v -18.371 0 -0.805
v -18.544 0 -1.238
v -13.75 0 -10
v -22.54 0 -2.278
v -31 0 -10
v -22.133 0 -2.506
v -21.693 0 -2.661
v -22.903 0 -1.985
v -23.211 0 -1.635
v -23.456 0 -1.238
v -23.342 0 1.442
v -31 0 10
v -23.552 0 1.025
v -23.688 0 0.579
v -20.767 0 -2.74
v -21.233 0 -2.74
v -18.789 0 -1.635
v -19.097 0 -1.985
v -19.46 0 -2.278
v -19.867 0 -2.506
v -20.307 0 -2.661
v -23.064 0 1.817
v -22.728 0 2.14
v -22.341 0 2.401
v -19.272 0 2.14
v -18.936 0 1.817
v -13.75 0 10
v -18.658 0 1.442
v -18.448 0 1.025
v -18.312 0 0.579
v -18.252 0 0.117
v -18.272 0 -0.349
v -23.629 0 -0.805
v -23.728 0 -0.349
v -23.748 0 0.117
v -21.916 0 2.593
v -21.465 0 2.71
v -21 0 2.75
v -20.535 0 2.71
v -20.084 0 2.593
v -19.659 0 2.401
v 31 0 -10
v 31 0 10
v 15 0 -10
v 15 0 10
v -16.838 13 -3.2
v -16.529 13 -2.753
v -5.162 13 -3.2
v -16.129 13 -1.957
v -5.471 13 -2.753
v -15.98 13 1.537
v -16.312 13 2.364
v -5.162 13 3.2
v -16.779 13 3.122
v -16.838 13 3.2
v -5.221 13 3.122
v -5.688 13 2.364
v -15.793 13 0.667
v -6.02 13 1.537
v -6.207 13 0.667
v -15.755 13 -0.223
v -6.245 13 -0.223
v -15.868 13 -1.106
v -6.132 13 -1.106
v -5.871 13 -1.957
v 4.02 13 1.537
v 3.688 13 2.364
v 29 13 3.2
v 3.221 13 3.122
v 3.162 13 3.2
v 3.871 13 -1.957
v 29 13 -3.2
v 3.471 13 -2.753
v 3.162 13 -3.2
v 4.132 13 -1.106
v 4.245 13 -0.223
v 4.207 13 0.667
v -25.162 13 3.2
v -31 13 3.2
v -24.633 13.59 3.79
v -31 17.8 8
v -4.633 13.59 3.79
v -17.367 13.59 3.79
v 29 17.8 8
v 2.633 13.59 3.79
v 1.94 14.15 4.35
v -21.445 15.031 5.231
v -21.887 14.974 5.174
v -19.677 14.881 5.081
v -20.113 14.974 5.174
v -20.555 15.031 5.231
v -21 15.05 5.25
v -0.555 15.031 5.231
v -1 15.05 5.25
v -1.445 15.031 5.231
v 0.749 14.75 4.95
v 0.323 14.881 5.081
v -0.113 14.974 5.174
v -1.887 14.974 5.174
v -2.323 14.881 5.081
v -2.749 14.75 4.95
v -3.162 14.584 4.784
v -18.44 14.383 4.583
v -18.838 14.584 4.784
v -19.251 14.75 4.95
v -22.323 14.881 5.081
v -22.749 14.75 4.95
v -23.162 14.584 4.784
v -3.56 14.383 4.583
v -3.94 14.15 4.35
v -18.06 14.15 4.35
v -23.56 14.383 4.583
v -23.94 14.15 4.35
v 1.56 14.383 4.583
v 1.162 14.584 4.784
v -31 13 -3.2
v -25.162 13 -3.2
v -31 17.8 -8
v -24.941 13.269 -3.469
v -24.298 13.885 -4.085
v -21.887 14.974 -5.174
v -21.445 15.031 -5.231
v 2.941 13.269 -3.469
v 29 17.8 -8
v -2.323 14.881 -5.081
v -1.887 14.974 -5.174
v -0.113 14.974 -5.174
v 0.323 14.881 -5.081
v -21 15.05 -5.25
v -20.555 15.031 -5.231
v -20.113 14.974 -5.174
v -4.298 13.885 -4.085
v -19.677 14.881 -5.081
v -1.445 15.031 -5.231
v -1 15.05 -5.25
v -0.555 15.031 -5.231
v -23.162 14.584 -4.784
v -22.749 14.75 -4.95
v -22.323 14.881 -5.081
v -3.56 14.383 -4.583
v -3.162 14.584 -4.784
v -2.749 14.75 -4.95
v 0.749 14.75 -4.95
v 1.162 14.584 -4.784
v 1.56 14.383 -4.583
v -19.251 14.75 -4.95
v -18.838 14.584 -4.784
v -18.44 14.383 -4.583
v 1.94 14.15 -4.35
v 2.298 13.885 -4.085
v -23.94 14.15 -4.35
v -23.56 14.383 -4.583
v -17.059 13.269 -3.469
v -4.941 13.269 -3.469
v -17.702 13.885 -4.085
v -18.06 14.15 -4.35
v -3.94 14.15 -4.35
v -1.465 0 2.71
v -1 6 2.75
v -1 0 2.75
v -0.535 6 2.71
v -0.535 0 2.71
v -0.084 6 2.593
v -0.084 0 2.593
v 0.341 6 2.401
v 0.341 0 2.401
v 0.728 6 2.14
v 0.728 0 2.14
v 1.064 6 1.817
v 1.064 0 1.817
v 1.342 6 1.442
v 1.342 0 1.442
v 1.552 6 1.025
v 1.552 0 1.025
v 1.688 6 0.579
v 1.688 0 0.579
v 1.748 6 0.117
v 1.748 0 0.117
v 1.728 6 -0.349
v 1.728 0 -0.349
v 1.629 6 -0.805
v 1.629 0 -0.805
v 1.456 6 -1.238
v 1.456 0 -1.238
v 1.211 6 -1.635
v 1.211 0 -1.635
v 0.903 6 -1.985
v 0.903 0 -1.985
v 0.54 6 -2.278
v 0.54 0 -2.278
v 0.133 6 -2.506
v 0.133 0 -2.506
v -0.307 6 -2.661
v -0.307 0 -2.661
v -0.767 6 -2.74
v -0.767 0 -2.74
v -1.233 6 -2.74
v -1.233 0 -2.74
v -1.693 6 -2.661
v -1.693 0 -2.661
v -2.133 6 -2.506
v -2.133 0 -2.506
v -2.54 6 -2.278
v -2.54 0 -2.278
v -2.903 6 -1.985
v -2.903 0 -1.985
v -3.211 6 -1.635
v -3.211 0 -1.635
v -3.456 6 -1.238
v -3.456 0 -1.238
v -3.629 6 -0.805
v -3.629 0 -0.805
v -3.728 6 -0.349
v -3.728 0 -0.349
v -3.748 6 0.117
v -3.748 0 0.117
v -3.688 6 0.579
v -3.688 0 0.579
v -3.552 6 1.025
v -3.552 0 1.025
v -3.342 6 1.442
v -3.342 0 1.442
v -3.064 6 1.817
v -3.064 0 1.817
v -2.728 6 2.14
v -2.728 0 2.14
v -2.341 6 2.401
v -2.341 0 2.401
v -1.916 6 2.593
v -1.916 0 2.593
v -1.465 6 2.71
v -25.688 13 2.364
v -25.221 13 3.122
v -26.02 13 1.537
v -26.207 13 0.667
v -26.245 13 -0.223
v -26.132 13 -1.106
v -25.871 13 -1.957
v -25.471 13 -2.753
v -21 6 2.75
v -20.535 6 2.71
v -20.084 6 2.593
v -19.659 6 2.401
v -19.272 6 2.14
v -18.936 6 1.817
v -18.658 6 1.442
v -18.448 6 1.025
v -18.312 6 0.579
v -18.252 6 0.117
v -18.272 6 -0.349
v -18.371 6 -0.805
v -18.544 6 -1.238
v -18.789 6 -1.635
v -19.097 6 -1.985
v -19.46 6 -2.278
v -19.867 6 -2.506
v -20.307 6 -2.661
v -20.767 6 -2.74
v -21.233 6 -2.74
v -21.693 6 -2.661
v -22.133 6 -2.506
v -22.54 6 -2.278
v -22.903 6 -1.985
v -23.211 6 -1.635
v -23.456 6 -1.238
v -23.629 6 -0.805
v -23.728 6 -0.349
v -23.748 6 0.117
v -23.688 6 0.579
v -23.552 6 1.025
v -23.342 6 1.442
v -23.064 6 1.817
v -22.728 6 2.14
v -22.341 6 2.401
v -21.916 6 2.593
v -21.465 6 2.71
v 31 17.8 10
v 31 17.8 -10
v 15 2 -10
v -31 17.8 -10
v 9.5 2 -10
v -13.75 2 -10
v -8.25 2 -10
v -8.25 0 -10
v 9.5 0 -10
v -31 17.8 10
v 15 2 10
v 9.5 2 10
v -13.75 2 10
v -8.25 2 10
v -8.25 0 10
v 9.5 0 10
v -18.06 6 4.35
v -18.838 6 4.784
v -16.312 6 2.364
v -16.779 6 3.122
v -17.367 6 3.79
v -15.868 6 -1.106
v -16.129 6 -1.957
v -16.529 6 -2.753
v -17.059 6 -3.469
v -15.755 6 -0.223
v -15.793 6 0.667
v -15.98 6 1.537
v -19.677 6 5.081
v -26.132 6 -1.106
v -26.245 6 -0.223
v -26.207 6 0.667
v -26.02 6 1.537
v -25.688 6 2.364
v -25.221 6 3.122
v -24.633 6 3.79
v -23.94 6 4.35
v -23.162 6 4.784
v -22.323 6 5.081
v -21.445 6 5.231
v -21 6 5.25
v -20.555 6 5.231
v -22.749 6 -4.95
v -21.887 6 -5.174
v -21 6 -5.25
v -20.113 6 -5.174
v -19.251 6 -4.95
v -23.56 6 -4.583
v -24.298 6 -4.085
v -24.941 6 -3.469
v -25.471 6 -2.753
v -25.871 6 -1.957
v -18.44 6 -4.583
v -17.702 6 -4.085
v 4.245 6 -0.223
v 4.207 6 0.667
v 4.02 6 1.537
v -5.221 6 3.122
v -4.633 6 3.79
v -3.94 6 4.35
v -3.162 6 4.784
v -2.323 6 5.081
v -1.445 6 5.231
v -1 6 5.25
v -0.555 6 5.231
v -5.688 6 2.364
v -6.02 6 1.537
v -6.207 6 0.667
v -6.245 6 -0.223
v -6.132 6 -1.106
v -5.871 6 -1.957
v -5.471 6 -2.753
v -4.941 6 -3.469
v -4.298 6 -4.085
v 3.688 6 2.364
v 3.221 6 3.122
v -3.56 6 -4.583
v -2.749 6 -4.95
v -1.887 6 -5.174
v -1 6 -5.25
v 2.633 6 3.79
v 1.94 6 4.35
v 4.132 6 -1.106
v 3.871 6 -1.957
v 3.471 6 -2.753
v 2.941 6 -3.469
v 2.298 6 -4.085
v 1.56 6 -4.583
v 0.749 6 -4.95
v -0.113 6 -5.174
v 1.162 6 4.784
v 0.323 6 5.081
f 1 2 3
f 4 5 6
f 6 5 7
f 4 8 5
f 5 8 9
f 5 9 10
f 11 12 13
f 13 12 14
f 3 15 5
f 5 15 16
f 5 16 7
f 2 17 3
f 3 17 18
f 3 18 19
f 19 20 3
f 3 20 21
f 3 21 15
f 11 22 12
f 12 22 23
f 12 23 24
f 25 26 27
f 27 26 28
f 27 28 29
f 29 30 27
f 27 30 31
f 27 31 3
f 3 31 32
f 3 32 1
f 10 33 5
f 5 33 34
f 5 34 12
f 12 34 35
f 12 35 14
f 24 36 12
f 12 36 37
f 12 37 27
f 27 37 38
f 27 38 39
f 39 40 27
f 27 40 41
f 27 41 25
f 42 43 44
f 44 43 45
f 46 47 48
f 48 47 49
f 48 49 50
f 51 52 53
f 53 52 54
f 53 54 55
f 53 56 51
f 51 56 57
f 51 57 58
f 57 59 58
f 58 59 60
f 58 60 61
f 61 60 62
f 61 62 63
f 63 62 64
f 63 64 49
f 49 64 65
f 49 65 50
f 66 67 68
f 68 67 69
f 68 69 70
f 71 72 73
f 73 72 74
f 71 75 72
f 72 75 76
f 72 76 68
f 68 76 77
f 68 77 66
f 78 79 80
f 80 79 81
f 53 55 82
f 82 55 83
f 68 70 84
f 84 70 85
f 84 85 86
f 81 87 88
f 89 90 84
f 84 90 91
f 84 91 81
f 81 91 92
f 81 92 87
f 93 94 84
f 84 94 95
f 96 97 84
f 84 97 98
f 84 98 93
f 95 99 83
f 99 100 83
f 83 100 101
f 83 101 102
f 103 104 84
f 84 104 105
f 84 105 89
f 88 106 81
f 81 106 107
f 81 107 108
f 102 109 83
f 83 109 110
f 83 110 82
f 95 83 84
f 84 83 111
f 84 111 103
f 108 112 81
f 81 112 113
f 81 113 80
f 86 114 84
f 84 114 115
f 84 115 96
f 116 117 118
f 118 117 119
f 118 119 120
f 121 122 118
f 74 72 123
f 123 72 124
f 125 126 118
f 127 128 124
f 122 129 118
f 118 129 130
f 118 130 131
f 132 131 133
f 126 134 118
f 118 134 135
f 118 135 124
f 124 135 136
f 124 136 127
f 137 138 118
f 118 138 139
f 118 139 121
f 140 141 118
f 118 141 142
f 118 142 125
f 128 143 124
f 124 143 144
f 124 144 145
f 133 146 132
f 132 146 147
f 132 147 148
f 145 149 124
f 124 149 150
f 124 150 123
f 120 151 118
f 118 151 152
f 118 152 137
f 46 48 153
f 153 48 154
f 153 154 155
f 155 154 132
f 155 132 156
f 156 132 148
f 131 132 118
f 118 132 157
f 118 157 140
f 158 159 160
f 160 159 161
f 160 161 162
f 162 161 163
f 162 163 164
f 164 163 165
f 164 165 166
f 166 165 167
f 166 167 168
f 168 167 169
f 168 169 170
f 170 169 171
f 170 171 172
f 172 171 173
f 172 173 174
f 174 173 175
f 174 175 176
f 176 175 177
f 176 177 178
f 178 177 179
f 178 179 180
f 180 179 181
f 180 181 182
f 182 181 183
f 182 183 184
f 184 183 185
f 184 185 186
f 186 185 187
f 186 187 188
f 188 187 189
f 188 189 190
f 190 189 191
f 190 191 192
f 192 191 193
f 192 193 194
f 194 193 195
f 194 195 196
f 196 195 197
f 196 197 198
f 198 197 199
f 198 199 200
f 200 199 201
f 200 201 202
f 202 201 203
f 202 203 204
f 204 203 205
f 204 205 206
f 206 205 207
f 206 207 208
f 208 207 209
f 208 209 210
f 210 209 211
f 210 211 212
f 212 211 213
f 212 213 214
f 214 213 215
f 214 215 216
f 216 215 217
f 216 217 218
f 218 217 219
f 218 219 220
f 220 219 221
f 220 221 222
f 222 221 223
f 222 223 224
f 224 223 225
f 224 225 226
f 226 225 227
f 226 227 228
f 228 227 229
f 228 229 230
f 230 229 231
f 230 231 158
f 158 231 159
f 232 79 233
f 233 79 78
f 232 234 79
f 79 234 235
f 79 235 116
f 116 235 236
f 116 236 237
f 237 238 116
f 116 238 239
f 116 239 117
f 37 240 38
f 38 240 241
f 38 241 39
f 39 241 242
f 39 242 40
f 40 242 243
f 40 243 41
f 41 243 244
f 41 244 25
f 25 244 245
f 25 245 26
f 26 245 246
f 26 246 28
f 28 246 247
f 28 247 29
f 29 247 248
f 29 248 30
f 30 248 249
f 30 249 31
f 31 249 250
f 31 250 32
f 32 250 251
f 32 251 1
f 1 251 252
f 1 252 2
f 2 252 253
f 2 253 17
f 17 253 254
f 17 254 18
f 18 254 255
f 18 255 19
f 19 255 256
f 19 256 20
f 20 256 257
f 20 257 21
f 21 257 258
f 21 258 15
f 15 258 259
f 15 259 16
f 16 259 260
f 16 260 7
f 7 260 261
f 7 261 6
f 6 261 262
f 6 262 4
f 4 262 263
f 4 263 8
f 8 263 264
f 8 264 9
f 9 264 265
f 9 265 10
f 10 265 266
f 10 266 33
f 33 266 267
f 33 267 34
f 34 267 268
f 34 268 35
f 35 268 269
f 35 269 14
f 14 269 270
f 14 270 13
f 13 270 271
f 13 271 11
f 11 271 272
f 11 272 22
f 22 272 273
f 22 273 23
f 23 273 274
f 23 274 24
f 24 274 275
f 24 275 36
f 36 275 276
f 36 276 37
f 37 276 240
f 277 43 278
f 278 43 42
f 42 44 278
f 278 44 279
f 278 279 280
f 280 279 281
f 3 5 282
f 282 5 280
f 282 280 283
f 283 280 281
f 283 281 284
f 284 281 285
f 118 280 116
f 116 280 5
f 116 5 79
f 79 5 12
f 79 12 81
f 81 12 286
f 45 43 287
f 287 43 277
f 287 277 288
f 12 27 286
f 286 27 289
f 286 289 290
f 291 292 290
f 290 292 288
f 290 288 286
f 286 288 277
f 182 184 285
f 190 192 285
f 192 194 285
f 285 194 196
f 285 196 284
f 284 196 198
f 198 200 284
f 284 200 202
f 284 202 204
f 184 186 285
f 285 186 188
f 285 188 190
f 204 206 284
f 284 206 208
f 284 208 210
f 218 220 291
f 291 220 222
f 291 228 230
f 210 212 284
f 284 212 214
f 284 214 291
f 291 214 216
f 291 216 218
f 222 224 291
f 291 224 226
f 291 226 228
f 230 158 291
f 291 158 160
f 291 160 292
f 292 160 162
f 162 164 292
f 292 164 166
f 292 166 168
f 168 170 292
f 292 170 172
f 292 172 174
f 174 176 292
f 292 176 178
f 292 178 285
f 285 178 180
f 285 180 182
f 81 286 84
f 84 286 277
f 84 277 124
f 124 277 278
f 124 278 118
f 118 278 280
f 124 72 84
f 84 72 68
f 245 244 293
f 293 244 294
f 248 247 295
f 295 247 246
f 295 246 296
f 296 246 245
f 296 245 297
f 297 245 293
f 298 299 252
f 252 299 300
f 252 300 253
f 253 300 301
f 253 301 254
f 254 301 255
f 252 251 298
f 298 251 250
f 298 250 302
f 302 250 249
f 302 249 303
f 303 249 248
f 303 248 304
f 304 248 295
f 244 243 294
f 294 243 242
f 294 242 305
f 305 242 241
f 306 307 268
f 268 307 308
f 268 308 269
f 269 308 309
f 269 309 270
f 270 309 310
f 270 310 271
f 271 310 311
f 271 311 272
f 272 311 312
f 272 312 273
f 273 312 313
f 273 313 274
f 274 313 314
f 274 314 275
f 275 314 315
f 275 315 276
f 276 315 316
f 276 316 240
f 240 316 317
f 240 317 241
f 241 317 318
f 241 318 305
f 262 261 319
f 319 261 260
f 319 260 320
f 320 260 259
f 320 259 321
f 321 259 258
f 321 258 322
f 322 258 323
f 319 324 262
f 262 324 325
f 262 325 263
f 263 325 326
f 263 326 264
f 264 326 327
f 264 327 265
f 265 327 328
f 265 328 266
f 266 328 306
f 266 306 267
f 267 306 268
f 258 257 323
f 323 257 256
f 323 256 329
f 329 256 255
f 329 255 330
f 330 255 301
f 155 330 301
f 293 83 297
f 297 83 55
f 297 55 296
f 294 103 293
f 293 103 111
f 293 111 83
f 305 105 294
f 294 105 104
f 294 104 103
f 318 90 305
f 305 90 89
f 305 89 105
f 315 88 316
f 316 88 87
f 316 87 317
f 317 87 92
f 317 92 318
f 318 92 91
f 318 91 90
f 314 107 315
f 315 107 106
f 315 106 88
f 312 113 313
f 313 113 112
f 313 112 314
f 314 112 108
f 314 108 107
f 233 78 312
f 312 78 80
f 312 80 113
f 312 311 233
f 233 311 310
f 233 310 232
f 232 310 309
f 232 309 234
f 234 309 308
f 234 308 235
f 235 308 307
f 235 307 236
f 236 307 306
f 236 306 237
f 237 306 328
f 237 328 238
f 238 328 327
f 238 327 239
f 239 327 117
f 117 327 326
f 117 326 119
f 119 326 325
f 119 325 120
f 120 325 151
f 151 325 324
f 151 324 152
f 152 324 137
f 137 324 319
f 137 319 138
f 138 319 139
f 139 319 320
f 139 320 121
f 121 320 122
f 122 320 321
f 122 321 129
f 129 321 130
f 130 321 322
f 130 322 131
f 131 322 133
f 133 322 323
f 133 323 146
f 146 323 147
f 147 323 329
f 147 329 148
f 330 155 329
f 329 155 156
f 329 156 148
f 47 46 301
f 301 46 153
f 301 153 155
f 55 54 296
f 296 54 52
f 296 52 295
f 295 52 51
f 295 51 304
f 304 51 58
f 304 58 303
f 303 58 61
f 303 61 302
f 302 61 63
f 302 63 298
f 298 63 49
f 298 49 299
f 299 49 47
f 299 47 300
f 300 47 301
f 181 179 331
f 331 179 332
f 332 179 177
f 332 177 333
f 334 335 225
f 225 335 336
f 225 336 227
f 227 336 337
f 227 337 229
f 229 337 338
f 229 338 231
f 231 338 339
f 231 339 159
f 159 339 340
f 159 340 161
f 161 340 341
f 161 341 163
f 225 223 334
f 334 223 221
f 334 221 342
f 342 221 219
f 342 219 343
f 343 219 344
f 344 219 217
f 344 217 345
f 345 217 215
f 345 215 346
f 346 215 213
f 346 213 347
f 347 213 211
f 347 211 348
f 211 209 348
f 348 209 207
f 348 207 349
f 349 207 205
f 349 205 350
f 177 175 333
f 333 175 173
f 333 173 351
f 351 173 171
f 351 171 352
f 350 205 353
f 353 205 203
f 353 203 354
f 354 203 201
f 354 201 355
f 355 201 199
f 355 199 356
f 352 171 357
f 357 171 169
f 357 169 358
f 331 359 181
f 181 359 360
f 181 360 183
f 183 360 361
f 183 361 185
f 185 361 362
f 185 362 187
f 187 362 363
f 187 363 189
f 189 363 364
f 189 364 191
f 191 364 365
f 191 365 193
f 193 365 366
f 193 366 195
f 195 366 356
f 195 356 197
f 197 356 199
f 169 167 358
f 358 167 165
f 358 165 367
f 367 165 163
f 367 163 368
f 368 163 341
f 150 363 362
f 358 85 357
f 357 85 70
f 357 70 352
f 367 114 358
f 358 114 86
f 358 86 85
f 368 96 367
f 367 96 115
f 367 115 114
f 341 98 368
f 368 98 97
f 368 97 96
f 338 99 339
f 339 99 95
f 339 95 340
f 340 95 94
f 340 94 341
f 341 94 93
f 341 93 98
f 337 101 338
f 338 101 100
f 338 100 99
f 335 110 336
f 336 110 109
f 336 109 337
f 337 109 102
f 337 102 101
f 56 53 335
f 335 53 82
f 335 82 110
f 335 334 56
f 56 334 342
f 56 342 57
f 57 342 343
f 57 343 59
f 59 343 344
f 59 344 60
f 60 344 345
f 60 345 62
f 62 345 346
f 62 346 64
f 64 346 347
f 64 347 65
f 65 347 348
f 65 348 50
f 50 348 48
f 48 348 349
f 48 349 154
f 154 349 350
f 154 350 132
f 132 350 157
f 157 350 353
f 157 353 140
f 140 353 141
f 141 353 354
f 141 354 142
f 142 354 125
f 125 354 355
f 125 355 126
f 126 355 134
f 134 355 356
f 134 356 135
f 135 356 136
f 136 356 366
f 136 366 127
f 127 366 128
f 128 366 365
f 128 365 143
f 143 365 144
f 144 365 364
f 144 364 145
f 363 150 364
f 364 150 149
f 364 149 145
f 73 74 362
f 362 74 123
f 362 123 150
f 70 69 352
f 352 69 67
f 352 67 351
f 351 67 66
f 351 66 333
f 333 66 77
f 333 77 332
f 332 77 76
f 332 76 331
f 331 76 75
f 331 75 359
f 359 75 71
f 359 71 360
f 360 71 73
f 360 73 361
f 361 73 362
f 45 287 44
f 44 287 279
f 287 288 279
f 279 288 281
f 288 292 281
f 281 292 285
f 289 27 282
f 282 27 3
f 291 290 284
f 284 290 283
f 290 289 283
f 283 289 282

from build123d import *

# Parameters (mm, degrees)
SKETCH1_W           = 62
SKETCH1_H           = 20
BOSS_EXTRUDE1_DEPTH = 13
BOSS_EXTRUDE2_DEPTH = 62
SKETCH3_W           = 2
SKETCH3_H           = 20
BOSS_EXTRUDE3_DEPTH = 4.8
SKETCH6_R           = 2.75
CUT_EXTRUDE1_DEPTH  = 14
CUT_EXTRUDE2_START  = 6
SKETCH7_R           = 5.25
CUT_EXTRUDE2_DEPTH  = 12.8
SKETCH8_W           = 5.5
SKETCH8_H           = 2
CUT_EXTRUDE3_DEPTH  = 21


with BuildPart() as part:
    # Sketch1 → Boss-Extrude1 (new body)
    with BuildSketch(Plane(origin=(0, 0, 0), x_dir=(1, 0, 0), z_dir=(0, 1, 0))):
        Rectangle(SKETCH1_W, SKETCH1_H)
    extrude(amount=BOSS_EXTRUDE1_DEPTH)

    # Sketch2 → Boss-Extrude2 (add)
    with BuildSketch(Plane.ZY.offset(31)):
        Polygon((3.2, 13), (8, 17.8), (10, 17.8), (10, 13), align=None)
        Polygon((-10, 13), (-3.2, 13), (-8, 17.8), (-10, 17.8), align=None)
    extrude(amount=-BOSS_EXTRUDE2_DEPTH)

    # Sketch3 → Boss-Extrude3 (add)
    with BuildSketch(Plane(origin=(0, 13, 0), x_dir=(1, 0, 0), z_dir=(0, 1, 0))):
        with Locations((30, 0)):
            Rectangle(SKETCH3_W, SKETCH3_H)
    extrude(amount=BOSS_EXTRUDE3_DEPTH)

    # Sketch6 → Cut-Extrude1 (cut, through all)
    with BuildSketch(Plane(origin=(0, 13, 0), x_dir=(1, 0, 0), z_dir=(0, 1, 0))):
        with Locations((-21, 0)):
            Circle(SKETCH6_R)
        with Locations((-1, 0)):
            Circle(SKETCH6_R)
    extrude(amount=-CUT_EXTRUDE1_DEPTH, mode=Mode.SUBTRACT)

    # Sketch7 → Cut-Extrude2 (cut, through all)
    with BuildSketch(Plane(origin=(0, 0, 0), x_dir=(1, 0, 0), z_dir=(0, 1, 0)).offset(CUT_EXTRUDE2_START)):
        with Locations((-21, 0)):
            Circle(SKETCH7_R)
        with Locations((-1, 0)):
            Circle(SKETCH7_R)
    extrude(amount=CUT_EXTRUDE2_DEPTH, mode=Mode.SUBTRACT)

    # Sketch8 → Cut-Extrude3 (cut, through all)
    with BuildSketch(Plane(origin=(0, 0, -10), x_dir=(-1, 0, 0), z_dir=(0, 0, -1))):
        with Locations((-12.25, 1)):
            Rectangle(SKETCH8_W, SKETCH8_H)
        with Locations((11, 1)):
            Rectangle(SKETCH8_W, SKETCH8_H)
    extrude(amount=-CUT_EXTRUDE3_DEPTH, mode=Mode.SUBTRACT)


solid = part.part
